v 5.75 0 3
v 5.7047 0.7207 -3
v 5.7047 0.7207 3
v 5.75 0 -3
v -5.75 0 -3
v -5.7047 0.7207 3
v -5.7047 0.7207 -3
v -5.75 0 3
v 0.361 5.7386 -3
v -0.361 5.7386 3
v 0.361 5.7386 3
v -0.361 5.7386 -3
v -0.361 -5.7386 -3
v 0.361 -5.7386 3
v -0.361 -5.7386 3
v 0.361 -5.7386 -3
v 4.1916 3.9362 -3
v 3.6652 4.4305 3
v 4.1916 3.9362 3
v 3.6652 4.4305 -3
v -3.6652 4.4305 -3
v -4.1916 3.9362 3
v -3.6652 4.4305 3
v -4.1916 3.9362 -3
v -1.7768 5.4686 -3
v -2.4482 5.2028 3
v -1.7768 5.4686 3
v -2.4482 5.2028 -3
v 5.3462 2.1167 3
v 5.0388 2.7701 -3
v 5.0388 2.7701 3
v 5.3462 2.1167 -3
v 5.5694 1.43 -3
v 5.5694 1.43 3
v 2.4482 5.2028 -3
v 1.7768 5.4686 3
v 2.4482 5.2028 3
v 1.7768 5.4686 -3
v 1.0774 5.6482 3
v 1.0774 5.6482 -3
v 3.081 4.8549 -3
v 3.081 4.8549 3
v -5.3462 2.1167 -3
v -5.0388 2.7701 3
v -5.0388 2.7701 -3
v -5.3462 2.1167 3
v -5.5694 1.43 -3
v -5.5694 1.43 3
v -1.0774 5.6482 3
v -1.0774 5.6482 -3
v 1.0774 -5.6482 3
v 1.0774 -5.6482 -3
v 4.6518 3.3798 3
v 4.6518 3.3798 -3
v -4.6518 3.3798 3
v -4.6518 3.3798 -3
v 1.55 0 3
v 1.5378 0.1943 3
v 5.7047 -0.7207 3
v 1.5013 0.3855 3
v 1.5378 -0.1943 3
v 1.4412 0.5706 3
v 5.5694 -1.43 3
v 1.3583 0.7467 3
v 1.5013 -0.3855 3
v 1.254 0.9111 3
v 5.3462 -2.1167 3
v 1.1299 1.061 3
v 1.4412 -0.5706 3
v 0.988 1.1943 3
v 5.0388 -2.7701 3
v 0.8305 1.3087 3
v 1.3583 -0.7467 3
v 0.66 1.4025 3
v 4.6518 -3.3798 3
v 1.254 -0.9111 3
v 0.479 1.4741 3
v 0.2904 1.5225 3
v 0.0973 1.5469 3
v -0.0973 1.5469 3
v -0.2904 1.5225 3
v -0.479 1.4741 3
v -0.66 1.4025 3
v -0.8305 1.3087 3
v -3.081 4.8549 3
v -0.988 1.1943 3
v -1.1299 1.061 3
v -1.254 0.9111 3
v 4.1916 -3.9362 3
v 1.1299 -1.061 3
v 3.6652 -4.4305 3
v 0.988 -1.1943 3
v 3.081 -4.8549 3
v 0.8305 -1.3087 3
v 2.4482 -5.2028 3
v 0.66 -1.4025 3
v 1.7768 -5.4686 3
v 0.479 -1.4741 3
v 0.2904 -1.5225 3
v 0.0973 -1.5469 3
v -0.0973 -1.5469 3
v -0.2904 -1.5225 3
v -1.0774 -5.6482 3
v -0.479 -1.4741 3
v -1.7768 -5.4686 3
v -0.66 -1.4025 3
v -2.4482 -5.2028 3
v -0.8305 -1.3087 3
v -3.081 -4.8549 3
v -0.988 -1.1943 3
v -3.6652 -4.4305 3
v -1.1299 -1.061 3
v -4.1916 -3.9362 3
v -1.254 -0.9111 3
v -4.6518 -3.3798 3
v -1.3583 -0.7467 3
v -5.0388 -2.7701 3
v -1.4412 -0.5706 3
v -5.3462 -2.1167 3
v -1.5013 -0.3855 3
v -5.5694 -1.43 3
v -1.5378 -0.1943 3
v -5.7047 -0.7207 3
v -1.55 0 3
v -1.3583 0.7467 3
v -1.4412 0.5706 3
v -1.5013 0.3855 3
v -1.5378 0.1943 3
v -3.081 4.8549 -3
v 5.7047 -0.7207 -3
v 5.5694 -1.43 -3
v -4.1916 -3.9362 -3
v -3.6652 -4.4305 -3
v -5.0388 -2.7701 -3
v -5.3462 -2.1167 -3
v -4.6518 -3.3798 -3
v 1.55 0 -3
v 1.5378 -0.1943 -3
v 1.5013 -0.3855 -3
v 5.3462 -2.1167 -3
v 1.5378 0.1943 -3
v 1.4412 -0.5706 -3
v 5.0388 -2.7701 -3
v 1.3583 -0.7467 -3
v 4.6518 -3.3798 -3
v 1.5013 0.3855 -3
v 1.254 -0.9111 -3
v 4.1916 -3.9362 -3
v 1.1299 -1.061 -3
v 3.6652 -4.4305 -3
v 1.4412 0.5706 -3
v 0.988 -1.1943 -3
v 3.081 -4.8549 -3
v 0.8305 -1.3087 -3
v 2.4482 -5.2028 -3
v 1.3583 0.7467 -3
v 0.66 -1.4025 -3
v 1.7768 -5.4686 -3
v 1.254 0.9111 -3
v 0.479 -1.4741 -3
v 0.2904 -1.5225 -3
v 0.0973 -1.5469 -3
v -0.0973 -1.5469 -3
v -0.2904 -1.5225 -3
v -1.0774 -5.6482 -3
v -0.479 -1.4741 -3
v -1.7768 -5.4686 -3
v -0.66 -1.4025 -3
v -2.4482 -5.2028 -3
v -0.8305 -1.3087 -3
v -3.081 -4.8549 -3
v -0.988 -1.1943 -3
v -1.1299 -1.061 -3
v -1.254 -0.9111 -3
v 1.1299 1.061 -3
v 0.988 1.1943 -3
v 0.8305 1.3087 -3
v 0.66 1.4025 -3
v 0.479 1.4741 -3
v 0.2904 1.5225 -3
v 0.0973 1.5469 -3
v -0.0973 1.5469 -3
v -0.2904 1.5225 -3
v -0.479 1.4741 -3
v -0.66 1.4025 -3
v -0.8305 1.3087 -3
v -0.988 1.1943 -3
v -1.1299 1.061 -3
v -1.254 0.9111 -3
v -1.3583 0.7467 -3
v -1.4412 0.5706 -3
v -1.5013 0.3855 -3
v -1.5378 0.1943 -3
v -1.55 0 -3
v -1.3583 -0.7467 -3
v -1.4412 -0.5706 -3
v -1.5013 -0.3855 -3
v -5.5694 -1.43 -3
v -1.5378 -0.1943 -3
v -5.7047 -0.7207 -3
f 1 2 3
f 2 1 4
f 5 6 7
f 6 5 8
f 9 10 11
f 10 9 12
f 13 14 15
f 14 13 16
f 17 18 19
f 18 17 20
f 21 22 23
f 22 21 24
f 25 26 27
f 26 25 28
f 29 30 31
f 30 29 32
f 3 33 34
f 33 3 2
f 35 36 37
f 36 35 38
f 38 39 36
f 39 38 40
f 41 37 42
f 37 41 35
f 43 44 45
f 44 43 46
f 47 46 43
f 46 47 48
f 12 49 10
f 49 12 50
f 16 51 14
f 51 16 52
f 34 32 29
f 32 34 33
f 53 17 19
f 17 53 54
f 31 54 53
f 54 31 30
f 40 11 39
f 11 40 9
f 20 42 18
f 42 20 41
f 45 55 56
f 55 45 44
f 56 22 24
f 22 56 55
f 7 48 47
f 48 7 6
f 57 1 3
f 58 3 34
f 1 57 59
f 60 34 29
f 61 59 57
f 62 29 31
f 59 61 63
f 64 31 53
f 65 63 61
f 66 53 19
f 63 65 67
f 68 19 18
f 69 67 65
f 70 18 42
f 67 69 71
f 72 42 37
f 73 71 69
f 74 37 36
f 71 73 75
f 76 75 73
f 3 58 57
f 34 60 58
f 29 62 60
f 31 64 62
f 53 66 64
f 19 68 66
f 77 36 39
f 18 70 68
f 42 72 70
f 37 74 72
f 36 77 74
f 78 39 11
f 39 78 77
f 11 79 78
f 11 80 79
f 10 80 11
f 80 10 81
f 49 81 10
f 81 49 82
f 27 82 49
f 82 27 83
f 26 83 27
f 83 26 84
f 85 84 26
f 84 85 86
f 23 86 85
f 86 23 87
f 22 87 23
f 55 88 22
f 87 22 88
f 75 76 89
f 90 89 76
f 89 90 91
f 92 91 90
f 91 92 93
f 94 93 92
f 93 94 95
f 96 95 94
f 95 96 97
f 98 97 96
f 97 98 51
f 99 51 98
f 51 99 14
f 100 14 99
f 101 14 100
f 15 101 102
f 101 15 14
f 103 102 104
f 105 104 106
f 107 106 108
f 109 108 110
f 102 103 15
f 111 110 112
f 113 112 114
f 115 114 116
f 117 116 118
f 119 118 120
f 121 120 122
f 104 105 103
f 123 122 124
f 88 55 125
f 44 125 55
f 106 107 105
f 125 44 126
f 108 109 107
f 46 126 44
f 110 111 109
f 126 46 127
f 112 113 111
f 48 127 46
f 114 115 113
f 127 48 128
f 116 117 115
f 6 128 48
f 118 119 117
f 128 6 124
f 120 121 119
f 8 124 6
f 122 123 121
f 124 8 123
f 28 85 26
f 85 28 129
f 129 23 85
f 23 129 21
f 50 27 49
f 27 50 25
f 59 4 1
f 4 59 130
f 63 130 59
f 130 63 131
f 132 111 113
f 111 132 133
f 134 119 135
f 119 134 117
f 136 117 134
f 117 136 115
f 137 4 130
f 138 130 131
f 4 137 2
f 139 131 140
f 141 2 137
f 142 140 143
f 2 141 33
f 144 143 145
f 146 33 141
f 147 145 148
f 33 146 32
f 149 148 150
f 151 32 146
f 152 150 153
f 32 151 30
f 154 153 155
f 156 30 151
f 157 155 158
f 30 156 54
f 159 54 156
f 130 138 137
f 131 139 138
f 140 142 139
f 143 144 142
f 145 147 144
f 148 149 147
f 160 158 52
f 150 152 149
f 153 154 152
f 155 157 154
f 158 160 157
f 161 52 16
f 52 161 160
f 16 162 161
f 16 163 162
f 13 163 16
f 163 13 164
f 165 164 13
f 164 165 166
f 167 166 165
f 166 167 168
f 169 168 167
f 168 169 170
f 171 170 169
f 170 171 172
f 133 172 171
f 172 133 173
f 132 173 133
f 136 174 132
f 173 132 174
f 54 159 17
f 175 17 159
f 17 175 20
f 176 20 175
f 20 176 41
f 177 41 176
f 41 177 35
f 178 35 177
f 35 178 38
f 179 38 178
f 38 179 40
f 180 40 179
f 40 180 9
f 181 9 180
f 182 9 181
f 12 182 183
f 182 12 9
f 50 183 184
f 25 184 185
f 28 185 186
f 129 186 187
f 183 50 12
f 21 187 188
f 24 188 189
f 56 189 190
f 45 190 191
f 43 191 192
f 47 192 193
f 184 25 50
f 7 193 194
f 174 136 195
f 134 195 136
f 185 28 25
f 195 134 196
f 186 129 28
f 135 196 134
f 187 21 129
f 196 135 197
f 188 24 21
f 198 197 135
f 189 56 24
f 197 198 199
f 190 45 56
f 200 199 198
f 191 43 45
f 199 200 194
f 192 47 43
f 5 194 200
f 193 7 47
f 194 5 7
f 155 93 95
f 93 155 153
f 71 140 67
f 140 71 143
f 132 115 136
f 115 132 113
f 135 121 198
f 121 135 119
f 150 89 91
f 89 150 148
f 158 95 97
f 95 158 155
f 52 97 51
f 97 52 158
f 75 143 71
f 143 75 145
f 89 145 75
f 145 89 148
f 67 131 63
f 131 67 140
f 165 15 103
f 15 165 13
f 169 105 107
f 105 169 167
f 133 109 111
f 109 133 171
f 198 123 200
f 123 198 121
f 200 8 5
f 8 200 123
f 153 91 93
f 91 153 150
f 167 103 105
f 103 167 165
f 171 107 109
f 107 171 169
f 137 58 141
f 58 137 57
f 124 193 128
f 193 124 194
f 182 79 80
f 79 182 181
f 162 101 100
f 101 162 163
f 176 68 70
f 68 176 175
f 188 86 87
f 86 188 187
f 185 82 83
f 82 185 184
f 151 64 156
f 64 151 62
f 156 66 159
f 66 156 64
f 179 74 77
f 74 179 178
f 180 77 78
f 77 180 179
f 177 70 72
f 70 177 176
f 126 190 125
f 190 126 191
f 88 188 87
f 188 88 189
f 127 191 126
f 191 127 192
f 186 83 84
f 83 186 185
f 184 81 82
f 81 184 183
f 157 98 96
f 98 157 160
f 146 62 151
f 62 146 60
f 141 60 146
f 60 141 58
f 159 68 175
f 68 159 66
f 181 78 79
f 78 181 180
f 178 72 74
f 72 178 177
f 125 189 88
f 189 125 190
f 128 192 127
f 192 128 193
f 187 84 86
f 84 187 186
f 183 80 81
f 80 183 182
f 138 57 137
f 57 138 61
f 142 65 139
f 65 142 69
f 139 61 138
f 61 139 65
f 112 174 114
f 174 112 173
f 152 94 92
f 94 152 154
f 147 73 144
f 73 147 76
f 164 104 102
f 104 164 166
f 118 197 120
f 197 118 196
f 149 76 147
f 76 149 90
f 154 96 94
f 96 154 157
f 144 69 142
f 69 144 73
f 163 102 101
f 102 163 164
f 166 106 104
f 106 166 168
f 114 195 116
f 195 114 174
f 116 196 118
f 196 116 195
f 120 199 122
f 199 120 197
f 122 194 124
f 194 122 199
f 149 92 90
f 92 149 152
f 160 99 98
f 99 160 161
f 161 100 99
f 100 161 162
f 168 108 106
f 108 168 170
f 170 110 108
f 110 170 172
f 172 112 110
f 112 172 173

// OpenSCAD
$fn = 50;


difference() {
	union() {
		translate(v = [0, 0, -3.0000000000]) {
			cylinder(h = 6, r = 5.7500000000);
		}
	}
	union() {
		translate(v = [0, 0, -100.0000000000]) {
			cylinder(h = 200, r = 1.5500000000);
		}
	}
}
